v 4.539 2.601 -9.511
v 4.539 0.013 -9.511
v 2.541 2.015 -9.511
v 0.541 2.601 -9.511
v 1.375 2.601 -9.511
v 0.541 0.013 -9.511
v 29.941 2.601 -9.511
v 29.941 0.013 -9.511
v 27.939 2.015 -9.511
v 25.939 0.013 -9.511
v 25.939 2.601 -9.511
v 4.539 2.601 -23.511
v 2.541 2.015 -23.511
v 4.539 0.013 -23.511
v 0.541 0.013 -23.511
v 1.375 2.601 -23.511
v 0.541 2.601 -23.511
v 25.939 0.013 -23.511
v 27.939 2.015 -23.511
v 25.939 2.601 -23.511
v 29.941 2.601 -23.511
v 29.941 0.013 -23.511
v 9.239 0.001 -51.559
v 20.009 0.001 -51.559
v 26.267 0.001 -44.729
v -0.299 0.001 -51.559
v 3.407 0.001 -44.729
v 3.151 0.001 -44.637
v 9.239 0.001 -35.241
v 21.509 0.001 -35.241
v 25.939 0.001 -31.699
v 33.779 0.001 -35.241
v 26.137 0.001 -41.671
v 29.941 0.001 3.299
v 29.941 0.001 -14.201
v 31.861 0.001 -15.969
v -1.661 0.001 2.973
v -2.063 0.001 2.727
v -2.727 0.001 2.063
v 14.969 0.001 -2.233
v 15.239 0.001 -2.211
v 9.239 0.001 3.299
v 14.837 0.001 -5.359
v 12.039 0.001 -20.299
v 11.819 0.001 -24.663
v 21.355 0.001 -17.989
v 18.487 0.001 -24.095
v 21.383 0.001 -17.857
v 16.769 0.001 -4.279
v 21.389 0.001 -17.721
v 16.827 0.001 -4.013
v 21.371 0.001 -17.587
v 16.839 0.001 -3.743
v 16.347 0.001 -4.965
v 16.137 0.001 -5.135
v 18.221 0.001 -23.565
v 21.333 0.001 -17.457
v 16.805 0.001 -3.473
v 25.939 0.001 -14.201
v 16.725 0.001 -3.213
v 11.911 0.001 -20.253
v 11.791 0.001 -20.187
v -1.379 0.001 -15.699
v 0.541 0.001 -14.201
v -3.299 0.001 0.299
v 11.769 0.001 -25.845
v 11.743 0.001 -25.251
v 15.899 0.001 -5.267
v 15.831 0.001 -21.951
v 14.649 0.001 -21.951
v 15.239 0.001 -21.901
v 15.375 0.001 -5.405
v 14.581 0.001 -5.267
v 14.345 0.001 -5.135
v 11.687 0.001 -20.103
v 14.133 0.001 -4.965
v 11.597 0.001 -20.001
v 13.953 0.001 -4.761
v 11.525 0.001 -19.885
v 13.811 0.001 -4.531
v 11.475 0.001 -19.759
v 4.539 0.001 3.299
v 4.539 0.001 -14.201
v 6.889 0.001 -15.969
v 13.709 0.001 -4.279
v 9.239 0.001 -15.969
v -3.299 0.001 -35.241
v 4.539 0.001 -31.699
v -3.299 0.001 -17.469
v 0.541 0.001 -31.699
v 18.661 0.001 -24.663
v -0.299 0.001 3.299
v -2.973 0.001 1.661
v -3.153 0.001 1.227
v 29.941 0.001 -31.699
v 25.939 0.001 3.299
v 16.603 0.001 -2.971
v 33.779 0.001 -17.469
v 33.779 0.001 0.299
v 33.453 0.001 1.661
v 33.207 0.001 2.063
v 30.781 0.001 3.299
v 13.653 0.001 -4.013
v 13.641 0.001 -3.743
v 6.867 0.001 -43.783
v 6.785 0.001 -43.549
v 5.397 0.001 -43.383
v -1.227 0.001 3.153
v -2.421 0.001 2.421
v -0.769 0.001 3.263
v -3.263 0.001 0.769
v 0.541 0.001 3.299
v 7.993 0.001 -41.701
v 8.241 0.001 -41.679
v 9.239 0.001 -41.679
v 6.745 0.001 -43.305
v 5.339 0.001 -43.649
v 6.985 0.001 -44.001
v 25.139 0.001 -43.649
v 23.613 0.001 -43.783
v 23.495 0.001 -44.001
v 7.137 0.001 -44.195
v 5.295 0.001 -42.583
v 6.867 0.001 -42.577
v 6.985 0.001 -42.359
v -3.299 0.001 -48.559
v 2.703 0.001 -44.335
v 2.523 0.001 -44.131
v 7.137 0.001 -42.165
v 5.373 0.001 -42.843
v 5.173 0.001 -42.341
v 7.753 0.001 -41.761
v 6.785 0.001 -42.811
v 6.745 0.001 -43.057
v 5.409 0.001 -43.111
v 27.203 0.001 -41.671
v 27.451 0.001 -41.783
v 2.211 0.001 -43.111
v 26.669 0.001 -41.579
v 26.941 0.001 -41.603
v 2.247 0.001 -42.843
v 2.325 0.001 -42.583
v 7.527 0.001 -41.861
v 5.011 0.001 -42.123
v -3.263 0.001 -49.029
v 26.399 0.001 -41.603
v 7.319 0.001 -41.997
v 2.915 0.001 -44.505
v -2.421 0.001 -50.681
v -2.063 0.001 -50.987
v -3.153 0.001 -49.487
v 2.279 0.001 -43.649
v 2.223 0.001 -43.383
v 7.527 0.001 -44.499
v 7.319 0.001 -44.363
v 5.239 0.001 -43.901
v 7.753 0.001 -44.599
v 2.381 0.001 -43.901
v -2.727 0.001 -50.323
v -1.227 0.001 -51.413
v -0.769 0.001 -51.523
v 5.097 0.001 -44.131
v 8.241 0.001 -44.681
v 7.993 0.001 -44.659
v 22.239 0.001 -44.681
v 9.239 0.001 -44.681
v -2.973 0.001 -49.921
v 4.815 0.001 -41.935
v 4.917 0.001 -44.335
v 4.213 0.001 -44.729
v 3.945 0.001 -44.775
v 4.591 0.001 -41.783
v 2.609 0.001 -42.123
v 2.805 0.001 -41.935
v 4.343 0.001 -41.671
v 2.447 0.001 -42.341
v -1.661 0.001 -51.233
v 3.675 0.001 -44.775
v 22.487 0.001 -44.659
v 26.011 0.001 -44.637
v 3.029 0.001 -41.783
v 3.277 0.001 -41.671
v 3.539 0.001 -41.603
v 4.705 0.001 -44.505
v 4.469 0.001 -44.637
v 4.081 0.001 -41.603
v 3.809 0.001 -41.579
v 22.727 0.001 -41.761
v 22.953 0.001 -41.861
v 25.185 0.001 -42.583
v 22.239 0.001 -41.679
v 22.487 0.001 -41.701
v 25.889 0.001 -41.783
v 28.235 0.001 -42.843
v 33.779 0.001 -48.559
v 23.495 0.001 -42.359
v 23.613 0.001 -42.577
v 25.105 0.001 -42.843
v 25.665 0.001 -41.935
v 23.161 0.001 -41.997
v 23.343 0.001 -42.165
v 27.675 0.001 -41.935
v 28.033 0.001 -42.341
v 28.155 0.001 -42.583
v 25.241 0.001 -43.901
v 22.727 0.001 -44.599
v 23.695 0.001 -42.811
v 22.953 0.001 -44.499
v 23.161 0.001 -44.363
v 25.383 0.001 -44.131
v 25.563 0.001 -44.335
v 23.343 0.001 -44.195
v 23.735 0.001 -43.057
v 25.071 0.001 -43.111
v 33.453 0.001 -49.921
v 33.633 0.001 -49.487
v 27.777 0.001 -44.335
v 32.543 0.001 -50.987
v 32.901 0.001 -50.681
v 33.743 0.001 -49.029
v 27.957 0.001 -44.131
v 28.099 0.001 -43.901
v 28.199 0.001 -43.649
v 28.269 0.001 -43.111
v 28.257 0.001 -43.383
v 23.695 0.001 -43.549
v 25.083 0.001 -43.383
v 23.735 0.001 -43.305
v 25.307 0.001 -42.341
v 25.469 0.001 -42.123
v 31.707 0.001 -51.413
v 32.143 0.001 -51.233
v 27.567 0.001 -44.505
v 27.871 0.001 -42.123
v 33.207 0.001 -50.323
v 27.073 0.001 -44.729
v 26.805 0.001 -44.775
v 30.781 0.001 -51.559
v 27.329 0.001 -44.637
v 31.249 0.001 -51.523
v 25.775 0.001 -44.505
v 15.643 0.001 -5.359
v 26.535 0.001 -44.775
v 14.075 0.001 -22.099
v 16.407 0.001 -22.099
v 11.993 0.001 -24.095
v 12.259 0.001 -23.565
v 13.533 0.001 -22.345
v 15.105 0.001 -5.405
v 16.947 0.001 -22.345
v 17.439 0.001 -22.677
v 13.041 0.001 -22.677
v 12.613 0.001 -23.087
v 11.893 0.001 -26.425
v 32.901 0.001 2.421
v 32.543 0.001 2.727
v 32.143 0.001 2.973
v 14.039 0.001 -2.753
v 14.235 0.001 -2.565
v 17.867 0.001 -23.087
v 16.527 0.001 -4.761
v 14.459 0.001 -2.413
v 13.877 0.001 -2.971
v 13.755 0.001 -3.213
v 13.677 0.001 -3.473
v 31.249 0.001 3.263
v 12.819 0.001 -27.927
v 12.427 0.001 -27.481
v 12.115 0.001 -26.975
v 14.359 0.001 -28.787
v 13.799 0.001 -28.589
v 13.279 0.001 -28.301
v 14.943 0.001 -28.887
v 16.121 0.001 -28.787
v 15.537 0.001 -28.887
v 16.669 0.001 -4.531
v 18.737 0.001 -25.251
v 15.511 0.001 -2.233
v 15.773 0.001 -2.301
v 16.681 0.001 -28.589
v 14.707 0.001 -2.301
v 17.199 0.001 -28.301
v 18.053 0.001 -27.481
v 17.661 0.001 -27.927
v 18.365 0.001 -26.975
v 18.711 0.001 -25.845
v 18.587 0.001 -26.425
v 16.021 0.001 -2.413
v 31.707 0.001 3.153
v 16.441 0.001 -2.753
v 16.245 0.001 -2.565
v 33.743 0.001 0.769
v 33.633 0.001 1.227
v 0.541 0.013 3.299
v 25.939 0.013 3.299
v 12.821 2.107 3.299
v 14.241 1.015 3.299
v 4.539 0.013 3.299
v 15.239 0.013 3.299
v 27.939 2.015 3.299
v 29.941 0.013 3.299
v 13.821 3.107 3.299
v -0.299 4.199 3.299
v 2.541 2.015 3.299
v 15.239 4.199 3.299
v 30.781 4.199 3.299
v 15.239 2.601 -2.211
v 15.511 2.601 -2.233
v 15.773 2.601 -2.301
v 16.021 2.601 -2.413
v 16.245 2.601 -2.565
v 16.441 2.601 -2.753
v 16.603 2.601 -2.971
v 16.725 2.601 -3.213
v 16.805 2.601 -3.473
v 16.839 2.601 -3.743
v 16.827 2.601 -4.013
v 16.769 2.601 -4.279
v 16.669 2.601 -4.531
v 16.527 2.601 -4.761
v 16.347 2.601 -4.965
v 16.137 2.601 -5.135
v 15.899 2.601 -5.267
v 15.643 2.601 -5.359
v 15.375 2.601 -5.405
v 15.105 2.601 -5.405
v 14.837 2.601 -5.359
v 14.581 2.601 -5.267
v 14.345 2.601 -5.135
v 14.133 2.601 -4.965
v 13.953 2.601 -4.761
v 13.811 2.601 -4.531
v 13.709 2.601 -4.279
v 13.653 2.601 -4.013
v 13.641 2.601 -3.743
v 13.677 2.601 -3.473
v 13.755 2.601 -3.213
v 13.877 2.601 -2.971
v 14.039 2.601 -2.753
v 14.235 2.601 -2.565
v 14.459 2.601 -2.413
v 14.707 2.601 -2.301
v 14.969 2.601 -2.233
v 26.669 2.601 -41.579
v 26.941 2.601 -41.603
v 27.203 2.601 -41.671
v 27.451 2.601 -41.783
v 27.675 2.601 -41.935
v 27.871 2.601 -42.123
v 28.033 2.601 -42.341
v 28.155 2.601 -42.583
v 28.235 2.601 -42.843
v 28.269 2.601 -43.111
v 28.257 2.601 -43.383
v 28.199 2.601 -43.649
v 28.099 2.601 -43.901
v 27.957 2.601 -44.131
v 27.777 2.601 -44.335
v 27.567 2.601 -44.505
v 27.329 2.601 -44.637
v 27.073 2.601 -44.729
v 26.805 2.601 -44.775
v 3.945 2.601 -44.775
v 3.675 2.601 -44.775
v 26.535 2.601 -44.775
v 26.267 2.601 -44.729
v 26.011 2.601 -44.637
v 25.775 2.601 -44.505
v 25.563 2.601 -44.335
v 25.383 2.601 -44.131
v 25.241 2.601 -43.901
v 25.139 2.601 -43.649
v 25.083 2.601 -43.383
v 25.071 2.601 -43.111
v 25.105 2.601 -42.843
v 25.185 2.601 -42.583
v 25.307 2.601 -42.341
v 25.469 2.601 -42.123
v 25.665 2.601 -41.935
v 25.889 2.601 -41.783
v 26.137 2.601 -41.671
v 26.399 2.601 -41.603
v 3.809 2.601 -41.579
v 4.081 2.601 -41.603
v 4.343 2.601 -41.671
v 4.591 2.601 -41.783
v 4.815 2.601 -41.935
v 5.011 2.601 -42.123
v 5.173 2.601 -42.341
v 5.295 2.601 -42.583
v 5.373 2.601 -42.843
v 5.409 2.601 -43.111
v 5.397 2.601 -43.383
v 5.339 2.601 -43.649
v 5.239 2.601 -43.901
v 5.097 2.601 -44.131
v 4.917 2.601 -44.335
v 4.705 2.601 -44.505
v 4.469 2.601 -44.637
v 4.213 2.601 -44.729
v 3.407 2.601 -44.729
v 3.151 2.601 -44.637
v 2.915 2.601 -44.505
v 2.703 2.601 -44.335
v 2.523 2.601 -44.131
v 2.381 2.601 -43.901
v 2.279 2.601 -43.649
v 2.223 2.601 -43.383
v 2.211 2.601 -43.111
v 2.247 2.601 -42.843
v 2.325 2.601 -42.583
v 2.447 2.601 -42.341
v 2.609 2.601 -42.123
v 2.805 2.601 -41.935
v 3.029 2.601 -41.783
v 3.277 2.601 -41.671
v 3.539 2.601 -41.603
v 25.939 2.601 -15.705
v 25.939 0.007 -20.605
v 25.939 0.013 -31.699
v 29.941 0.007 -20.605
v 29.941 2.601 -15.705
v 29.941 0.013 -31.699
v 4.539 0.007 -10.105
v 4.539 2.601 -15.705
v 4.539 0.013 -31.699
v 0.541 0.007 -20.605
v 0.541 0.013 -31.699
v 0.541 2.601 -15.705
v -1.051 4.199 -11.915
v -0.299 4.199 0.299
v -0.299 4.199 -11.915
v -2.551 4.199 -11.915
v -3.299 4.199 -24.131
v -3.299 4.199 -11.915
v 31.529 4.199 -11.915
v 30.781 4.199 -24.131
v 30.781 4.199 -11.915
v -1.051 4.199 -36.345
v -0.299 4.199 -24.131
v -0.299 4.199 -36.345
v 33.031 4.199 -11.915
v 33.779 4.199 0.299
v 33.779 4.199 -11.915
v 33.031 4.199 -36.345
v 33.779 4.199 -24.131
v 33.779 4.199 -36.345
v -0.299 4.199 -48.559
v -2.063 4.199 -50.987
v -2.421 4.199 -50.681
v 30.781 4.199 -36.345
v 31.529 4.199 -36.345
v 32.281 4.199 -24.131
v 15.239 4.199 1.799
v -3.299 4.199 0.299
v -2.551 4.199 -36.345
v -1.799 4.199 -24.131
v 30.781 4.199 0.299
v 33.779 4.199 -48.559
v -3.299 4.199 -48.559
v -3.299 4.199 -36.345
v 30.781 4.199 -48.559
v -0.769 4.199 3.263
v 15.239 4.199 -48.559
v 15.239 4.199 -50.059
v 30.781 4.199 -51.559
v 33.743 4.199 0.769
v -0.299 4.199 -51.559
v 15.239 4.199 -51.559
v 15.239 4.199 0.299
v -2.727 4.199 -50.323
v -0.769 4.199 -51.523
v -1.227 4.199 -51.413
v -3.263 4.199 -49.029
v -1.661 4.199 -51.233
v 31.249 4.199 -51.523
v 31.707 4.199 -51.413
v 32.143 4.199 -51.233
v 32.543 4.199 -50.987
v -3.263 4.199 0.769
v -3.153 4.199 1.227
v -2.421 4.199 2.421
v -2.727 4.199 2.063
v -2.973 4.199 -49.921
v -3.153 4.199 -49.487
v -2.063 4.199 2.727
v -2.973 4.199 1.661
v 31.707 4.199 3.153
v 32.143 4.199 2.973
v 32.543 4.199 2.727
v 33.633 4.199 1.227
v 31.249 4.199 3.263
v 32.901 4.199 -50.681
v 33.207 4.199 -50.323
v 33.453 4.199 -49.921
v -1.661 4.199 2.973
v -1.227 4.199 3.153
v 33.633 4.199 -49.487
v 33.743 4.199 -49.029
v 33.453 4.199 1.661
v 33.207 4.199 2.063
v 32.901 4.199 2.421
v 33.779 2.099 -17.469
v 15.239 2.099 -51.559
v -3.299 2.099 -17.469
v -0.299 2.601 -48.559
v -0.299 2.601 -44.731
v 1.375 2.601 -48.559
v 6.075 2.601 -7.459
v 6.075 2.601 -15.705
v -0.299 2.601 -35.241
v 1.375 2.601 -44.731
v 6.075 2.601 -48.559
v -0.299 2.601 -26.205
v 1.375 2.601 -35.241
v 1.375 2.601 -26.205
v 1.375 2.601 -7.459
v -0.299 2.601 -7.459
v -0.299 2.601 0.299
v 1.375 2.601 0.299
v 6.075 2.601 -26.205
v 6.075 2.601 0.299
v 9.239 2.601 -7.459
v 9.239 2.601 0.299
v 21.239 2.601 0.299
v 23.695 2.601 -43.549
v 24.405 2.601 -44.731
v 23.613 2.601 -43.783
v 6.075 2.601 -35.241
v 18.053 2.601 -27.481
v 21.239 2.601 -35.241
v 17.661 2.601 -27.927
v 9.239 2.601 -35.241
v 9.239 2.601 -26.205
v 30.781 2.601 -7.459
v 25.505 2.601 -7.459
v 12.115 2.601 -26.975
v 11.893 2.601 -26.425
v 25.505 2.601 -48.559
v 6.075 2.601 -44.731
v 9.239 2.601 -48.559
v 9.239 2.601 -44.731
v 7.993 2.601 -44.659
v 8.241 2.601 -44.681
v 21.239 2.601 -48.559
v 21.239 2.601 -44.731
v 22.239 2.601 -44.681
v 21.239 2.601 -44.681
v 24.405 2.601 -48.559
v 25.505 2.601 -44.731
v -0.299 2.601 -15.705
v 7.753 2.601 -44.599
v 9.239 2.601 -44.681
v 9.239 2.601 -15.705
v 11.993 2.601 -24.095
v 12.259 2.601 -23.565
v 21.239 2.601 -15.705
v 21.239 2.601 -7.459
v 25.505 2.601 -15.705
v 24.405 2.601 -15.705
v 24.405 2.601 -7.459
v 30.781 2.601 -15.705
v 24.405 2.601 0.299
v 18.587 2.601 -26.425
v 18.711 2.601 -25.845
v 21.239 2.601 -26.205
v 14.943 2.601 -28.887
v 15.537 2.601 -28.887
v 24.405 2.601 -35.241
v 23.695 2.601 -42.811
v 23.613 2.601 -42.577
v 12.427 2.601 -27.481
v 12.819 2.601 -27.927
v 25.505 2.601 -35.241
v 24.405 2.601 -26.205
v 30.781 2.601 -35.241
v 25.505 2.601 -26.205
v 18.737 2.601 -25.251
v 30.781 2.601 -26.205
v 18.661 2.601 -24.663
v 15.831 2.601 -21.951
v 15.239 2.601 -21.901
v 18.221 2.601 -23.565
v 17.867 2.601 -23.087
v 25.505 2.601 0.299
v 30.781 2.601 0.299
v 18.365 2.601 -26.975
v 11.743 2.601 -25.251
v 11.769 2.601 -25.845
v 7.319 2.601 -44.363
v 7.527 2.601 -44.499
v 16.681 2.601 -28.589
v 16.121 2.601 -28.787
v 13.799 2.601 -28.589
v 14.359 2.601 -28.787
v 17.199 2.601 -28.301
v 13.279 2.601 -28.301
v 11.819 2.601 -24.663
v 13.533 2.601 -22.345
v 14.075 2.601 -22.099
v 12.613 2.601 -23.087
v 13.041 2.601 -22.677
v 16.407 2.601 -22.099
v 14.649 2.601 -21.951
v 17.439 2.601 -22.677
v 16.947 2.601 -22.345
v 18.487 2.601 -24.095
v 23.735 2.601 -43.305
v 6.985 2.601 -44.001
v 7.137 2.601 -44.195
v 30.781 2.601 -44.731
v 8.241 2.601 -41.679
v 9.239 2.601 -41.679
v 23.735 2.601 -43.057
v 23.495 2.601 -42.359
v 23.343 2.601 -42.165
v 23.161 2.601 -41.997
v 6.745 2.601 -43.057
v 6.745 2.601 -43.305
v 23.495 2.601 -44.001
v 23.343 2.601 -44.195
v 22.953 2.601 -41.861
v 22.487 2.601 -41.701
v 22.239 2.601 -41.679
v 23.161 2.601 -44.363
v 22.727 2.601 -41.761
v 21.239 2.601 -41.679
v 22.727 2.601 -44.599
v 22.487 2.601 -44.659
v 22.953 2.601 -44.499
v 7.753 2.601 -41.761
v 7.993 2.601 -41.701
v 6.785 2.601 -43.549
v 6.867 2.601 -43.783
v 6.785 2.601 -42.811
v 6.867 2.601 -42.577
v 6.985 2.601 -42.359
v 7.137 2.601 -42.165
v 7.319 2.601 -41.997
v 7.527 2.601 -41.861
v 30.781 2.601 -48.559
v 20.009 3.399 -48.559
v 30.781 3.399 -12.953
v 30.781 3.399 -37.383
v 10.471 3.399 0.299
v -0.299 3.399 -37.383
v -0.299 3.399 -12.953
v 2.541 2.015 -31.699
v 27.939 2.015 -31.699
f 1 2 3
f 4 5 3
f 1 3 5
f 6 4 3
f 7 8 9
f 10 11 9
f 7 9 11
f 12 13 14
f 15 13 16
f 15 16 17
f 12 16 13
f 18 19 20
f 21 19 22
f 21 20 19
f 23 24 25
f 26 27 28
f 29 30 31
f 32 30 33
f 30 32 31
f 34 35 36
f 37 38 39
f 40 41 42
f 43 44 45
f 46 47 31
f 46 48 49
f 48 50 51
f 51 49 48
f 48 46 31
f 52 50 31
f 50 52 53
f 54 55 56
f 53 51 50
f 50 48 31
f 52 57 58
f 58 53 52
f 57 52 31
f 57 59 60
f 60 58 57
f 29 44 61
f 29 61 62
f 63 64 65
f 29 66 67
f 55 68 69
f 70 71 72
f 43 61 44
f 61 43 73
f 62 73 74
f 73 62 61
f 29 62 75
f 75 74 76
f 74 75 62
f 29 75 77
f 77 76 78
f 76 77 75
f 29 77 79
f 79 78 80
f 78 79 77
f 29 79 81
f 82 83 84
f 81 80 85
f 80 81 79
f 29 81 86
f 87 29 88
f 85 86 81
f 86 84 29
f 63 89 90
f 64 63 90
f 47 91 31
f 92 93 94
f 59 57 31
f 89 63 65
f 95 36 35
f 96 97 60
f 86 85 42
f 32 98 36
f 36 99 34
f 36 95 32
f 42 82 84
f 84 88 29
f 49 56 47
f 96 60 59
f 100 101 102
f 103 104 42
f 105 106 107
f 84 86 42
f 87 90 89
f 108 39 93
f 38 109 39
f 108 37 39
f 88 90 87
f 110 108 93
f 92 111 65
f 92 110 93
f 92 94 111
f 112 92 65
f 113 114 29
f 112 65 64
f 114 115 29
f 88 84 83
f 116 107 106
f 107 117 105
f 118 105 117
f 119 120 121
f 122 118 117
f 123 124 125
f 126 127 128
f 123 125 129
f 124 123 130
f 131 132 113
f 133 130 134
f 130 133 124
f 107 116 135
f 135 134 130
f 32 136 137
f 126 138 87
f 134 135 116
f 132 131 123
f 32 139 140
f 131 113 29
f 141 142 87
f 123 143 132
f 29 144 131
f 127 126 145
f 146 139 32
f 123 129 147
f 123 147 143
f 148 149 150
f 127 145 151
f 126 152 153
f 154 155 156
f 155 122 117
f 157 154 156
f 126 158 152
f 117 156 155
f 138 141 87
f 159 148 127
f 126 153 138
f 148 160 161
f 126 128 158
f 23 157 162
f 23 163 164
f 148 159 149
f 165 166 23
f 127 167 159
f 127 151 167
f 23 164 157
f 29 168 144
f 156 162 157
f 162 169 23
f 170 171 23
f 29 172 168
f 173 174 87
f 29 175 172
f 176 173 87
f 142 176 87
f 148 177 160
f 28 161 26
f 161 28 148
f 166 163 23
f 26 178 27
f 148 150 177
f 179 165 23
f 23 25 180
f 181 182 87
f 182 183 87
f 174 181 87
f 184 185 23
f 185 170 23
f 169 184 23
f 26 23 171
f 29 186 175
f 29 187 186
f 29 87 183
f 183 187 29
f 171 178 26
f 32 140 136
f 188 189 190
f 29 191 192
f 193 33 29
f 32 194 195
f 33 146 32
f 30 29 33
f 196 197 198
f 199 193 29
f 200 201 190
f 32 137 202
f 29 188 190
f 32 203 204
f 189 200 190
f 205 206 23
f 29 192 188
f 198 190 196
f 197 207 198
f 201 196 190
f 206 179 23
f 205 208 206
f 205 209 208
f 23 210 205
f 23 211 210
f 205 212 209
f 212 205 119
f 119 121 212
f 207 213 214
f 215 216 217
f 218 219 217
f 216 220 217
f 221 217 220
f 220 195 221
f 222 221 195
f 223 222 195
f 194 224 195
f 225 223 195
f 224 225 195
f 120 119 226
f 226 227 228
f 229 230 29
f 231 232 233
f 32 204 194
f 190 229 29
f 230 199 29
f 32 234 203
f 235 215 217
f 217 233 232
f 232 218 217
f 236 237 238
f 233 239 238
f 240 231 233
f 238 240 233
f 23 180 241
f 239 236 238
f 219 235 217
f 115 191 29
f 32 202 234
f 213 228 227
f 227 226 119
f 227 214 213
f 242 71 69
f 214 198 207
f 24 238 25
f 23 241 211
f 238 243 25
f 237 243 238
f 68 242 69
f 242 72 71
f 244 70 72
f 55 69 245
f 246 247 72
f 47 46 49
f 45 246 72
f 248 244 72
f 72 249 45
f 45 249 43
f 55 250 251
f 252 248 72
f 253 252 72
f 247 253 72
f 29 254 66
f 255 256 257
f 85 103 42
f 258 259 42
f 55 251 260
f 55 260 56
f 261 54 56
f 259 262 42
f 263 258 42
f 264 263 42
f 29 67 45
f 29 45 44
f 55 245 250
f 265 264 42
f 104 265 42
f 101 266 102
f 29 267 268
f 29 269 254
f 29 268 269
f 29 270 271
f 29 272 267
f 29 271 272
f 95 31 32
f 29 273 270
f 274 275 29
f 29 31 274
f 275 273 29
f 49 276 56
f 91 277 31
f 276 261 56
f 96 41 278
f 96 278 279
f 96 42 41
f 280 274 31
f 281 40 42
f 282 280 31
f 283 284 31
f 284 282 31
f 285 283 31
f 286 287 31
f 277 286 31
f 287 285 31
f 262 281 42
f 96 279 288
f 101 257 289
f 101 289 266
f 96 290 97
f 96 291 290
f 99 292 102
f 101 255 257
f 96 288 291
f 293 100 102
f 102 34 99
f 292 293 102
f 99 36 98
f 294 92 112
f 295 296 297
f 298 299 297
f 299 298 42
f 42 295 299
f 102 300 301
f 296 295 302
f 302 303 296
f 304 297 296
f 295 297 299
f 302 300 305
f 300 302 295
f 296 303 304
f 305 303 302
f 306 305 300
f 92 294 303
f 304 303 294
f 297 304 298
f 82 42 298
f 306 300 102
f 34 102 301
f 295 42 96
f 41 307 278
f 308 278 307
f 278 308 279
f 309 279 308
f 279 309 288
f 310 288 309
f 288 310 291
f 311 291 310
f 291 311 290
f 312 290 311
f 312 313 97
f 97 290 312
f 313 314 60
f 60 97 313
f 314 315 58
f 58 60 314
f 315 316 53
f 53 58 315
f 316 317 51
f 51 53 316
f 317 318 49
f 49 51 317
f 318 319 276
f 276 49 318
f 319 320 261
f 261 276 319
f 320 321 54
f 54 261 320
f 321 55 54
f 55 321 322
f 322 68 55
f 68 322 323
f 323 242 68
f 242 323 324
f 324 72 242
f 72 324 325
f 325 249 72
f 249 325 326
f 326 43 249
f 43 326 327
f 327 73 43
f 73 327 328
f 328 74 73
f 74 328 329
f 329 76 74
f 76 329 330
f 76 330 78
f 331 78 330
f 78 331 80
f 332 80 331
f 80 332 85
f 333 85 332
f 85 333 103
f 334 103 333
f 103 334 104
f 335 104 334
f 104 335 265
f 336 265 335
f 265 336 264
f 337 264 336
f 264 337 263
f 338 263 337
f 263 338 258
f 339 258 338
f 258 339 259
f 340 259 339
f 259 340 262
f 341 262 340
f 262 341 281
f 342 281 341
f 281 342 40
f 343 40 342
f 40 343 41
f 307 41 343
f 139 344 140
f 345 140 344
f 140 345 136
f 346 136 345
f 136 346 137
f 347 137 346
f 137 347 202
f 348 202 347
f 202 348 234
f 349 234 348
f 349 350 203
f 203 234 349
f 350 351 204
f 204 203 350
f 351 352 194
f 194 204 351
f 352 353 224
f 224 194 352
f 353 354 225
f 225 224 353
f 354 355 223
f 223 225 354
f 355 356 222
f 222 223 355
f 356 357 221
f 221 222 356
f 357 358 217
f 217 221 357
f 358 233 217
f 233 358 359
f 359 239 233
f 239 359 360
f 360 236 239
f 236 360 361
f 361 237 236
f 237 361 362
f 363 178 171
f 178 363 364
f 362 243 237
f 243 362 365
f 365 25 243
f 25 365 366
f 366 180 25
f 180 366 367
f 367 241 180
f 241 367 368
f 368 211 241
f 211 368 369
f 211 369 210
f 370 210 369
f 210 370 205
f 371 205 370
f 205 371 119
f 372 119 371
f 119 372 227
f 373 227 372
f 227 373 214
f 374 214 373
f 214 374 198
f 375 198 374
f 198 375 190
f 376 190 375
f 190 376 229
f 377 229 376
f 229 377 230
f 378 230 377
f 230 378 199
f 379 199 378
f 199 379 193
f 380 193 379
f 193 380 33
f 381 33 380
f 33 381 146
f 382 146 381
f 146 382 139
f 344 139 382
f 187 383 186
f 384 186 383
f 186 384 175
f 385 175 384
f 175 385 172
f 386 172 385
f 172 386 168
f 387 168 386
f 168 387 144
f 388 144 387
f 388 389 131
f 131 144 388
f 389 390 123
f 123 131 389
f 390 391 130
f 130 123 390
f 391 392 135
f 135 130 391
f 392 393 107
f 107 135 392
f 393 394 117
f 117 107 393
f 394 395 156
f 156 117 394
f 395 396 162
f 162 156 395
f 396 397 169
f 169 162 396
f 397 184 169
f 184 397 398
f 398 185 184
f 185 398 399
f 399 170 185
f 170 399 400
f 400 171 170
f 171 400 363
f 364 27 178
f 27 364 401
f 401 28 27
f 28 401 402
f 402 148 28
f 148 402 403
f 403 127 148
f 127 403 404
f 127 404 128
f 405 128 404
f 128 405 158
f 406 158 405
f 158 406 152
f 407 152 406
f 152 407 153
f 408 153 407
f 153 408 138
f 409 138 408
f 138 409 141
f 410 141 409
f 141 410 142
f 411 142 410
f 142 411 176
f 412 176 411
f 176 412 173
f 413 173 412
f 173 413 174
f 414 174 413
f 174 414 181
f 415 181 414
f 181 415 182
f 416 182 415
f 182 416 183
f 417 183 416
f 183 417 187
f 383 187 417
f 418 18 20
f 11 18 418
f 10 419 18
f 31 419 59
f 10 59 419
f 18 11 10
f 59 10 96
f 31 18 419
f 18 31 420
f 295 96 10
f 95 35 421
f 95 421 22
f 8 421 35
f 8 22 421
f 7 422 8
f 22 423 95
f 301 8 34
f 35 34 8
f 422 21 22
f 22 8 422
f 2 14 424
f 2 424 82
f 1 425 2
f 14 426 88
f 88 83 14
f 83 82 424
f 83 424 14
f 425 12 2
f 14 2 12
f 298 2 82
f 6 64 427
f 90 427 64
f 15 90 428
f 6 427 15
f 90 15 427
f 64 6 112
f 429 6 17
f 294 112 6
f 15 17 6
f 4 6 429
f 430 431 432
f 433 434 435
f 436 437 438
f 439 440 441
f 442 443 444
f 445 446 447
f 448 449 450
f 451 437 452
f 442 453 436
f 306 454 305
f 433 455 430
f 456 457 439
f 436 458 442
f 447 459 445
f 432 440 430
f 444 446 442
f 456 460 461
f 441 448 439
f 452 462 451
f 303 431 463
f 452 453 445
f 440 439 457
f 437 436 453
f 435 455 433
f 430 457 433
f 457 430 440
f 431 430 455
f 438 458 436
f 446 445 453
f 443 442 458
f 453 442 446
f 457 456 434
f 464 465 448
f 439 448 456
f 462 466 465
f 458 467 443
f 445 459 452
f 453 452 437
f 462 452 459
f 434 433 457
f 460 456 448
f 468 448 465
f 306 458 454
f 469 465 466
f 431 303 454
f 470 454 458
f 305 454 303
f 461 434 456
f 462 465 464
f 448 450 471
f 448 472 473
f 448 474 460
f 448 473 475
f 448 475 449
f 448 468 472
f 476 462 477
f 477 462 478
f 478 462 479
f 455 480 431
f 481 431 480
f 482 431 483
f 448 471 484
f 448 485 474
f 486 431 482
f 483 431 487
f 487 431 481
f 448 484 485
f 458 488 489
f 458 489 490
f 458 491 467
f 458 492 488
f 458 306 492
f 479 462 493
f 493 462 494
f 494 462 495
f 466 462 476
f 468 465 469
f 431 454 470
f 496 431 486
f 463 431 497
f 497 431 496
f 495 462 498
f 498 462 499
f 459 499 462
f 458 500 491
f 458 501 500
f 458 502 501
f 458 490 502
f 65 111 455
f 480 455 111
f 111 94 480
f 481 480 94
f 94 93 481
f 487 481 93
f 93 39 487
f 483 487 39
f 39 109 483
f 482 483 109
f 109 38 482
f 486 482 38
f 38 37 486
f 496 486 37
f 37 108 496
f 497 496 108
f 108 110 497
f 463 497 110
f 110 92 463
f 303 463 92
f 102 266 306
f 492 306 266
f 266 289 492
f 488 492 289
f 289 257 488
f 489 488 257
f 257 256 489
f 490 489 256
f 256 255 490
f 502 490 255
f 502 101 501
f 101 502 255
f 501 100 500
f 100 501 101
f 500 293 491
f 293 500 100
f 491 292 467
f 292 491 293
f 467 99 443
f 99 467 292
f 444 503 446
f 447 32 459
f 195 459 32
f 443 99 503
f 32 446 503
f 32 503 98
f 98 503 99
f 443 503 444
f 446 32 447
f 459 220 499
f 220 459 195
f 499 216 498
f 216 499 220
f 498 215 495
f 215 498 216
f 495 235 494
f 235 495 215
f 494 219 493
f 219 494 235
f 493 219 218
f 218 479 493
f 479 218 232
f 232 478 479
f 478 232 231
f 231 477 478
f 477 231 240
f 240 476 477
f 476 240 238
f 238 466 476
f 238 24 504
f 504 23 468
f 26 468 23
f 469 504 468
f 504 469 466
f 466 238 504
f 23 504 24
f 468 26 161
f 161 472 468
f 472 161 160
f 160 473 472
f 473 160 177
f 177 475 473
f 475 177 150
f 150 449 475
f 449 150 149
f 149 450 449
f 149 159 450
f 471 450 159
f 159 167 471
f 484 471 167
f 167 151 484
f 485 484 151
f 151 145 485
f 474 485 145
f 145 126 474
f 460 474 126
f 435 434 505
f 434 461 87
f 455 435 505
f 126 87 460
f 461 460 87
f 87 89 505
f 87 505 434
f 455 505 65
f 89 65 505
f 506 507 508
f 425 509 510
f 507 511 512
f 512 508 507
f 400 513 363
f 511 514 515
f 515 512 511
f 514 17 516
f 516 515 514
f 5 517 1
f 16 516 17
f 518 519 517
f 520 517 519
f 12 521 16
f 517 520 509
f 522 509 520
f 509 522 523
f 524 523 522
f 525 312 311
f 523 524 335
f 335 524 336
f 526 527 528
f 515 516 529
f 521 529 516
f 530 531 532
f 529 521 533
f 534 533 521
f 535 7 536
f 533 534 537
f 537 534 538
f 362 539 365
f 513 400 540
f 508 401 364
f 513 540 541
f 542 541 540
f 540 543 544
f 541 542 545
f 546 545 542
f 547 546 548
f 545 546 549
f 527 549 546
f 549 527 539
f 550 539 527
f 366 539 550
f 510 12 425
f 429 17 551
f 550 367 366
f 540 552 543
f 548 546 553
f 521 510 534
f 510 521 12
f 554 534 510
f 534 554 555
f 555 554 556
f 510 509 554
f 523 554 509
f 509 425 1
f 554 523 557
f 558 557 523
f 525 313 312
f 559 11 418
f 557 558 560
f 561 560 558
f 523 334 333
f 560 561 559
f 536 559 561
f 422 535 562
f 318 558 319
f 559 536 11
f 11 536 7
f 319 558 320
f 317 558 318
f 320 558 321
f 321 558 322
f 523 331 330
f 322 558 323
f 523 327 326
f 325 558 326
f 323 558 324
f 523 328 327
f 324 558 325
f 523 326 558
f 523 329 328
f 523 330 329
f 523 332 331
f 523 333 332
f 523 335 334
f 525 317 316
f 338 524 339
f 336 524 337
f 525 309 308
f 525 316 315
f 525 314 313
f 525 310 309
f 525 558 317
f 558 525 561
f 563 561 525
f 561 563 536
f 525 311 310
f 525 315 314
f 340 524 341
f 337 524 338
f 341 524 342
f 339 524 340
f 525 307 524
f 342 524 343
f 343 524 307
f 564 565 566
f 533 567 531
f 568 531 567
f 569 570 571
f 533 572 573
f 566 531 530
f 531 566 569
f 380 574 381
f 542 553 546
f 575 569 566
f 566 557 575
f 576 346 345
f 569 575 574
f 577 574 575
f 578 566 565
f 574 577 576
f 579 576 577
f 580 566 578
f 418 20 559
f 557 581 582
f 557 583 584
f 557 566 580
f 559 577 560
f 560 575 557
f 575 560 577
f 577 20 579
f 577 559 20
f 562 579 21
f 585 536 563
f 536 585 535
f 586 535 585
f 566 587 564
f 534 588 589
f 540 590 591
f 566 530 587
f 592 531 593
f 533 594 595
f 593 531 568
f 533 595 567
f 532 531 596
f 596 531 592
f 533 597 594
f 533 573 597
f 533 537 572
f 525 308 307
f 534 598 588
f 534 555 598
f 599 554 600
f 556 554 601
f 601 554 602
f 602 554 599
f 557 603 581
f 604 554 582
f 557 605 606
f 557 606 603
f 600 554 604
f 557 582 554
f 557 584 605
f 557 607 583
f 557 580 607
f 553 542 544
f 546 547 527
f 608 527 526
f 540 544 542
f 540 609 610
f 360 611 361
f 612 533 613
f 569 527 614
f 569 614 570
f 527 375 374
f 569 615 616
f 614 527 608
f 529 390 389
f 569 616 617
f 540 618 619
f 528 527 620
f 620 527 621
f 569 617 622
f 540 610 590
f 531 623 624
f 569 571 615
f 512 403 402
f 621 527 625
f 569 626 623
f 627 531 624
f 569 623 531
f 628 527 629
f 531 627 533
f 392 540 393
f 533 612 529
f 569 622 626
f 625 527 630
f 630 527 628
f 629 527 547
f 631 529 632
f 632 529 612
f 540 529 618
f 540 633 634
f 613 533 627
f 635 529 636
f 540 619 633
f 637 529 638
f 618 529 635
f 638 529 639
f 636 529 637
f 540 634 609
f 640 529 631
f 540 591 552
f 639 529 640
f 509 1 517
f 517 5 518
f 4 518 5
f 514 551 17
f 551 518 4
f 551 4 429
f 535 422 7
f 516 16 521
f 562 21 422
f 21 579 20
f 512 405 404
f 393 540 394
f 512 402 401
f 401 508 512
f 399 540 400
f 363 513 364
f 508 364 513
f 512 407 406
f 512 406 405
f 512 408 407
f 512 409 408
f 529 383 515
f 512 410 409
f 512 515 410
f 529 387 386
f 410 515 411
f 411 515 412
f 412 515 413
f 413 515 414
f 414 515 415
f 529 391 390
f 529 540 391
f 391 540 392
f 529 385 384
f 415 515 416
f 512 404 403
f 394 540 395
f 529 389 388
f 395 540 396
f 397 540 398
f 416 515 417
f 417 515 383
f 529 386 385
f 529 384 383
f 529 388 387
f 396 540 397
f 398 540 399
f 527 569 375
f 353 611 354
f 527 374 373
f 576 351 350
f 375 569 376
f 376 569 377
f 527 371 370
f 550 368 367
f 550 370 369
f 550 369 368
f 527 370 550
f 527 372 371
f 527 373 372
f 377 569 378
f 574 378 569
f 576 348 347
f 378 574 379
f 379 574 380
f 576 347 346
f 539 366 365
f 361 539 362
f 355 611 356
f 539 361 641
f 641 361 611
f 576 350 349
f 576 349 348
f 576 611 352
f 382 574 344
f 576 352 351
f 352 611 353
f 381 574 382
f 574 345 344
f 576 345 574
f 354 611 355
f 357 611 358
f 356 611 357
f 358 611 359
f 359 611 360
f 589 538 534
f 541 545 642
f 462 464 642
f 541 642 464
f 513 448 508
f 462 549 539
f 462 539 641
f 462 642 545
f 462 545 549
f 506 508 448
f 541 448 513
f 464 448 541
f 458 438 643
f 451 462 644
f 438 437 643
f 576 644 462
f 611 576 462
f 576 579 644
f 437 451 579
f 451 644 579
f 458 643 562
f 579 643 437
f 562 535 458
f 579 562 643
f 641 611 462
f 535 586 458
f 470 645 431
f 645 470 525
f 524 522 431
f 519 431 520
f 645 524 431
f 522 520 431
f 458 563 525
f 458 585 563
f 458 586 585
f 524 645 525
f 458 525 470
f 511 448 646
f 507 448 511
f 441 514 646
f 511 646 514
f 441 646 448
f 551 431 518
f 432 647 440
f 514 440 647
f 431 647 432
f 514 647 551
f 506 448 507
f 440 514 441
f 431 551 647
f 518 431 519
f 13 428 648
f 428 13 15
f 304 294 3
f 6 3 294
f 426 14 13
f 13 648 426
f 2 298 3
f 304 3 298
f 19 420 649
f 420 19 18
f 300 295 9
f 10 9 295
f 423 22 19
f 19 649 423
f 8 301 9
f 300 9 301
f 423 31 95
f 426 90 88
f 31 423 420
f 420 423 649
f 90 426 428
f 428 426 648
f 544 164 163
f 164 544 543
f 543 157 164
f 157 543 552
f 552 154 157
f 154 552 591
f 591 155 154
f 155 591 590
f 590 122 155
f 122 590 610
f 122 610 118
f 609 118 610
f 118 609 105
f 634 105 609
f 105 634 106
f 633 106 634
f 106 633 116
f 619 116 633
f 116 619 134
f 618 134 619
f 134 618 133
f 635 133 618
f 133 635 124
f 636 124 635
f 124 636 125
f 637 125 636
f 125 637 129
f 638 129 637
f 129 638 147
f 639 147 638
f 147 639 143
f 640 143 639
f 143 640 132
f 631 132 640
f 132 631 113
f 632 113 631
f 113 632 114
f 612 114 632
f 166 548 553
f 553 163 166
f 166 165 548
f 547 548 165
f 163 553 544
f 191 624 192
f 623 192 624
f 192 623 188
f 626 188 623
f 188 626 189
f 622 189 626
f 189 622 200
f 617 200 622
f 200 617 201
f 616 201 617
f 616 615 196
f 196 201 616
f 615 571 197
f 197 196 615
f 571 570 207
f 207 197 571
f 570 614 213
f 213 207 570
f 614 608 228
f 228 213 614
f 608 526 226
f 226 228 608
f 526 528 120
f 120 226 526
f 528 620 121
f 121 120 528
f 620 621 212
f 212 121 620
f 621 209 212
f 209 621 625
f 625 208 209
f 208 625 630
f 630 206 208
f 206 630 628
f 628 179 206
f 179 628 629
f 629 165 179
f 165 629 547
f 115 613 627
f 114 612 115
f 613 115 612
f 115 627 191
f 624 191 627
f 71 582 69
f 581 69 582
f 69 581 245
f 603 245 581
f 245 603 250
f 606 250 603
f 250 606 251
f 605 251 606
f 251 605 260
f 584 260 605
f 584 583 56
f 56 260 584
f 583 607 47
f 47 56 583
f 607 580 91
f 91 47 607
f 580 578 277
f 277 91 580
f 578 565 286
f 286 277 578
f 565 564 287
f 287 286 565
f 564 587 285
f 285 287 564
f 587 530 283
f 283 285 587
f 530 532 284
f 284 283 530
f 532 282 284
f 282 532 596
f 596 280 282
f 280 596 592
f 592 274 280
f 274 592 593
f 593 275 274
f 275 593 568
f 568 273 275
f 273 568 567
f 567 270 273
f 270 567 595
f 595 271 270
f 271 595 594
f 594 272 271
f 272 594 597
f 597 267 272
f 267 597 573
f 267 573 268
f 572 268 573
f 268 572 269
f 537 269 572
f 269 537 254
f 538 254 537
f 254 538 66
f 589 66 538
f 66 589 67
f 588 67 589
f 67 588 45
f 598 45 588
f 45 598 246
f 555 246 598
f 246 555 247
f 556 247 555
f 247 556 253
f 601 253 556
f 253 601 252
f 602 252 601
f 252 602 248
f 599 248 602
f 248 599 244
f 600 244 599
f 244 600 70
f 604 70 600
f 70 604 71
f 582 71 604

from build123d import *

# Parameters (mm, degrees)
BOSS_EXTRUDE1_DEPTH     = 4.2
CUT_EXTRUDE4_DEPTH      = 62.783185415
CUT_EXTRUDE4_DEPTH_BACK = 62.783185415
SKETCH2_R               = 1.6
SKETCH3_W               = 4
SKETCH3_H               = 14
CUT_EXTRUDE5_DEPTH      = 62.783185415
SKETCH6_W               = 31.08
SKETCH6_H               = 48.86
CUT_EXTRUDE6_DEPTH      = 1.6
CUT_EXTRUDE7_DEPTH      = 65.562744675
CUT_EXTRUDE7_DEPTH_BACK = 35
CUT_EXTRUDE8_DEPTH      = 62.695072737
CUT_EXTRUDE8_DEPTH_BACK = 62.695072737
SKETCH9_R               = 3.5


with BuildPart() as part:
    # Sketch1 → Boss-Extrude1 (new body)
    with BuildSketch(Plane(origin=(0, 0, 0), x_dir=(1, 0, 0), z_dir=(0, 1, 0))):
        with BuildLine():
            Line((-3.3, -0.3), (-3.3, 48.56))
            ThreePointArc((-3.3, 48.56), (-2.421320344, 50.681320344), (-0.3, 51.56))
            Line((-0.3, 51.56), (30.78, 51.56))
            ThreePointArc((30.78, 51.56), (32.901320344, 50.681320344), (33.78, 48.56))
            Line((33.78, 48.56), (33.78, -0.3))
            ThreePointArc((33.78, -0.3), (32.901320344, -2.421320344), (30.78, -3.3))
            Line((30.78, -3.3), (-0.3, -3.3))
            ThreePointArc((-0.3, -3.3), (-2.421320344, -2.421320344), (-3.3, -0.3))
        make_face()
    extrude(amount=BOSS_EXTRUDE1_DEPTH)

    # Sketch2 → Cut-Extrude4 (cut, two sides: drawn at the far end of the back side and taken through both)
    with BuildSketch(Plane(origin=(0, 0, 0), x_dir=(1, 0, 0), z_dir=(0, 1, 0)).offset(-CUT_EXTRUDE4_DEPTH_BACK)):
        with Locations(Location((3.81, 43.18, 0), (0, 0, 270))):
            Circle(SKETCH2_R)
        with Locations(Location((26.67, 43.18, 0), (0, 0, 270))):
            Circle(SKETCH2_R)
        with Locations(Location((15.24, 3.81, 0), (0, 0, 270))):
            Circle(SKETCH2_R)
    extrude(amount=CUT_EXTRUDE4_DEPTH + CUT_EXTRUDE4_DEPTH_BACK, mode=Mode.SUBTRACT)

    # Sketch3 → Cut-Extrude5 (cut, through all)
    with BuildSketch(Plane(origin=(0, 0, 0), x_dir=(1, 0, 0), z_dir=(0, 1, 0))):
        with Locations((2.54, 16.51)):
            Rectangle(SKETCH3_W, SKETCH3_H)
        with Locations((27.94, 16.51)):
            Rectangle(SKETCH3_W, SKETCH3_H)
    extrude(amount=CUT_EXTRUDE5_DEPTH, mode=Mode.SUBTRACT)

    # Sketch6 → Cut-Extrude6 (cut)
    with BuildSketch(Plane(origin=(0, 4.2, 0), x_dir=(1, 0, 0), z_dir=(0, 1, 0))):
        with Locations((15.24, 24.13)):
            Rectangle(SKETCH6_W, SKETCH6_H)
    extrude(amount=-CUT_EXTRUDE6_DEPTH, mode=Mode.SUBTRACT)

    # Sketch8 → Cut-Extrude7 (cut, two sides: drawn at the far end of the back side and taken through both)
    with BuildSketch(Plane.XY.offset(3.3).offset(-CUT_EXTRUDE7_DEPTH_BACK)):
        with BuildLine():
            ThreePointArc((1.74, 0), (1.542515791, 0.67088902), (1.832893219, 1.307106781))
            Line((1.832893219, 1.307106781), (0.54, 0.014213562))
            Line((0.54, 0.014213562), (0.54, 0))
            Line((0.54, 0), (1.74, 0))
        make_face()
        with BuildLine():
            ThreePointArc((1.832893219, 1.307106781), (2.54, 1.6), (3.247106781, 1.307106781))
            Line((3.247106781, 1.307106781), (2.54, 2.014213562))
            Line((2.54, 2.014213562), (1.832893219, 1.307106781))
        make_face()
        with BuildLine():
            ThreePointArc((3.54, 0.6), (3.463879533, 0.982683432), (3.247106781, 1.307106781))
            ThreePointArc((3.247106781, 1.307106781), (2.54, 1.6), (1.832893219, 1.307106781))
            ThreePointArc((1.832893219, 1.307106781), (1.542515791, 0.67088902), (1.74, 0))
            Line((1.74, 0), (3.34, 0))
            ThreePointArc((3.34, 0), (3.488683298, 0.283772234), (3.54, 0.6))
        make_face()
        with BuildLine():
            ThreePointArc((1.74, 0), (2.54, -0.4), (3.34, 0))
            Line((3.34, 0), (1.74, 0))
        make_face()
        with BuildLine():
            Line((4.54, 0), (4.54, 0.014213562))
            Line((4.54, 0.014213562), (3.247106781, 1.307106781))
            ThreePointArc((3.247106781, 1.307106781), (3.463879533, 0.982683432), (3.54, 0.6))
            ThreePointArc((3.54, 0.6), (3.488683298, 0.283772234), (3.34, 0))
            Line((3.34, 0), (4.54, 0))
        make_face()
        with BuildLine():
            Line((29.94, 0.014213562), (28.647106781, 1.307106781))
            ThreePointArc((28.647106781, 1.307106781), (28.863879533, 0.982683432), (28.94, 0.6))
            ThreePointArc((28.94, 0.6), (28.888683298, 0.283772234), (28.74, 0))
            Line((28.74, 0), (29.94, 0))
            Line((29.94, 0), (29.94, 0.014213562))
        make_face()
        with BuildLine():
            Line((28.647106781, 1.307106781), (27.94, 2.014213562))
            Line((27.94, 2.014213562), (27.23289323, 1.307106792))
            ThreePointArc((27.23289323, 1.307106792), (27.940000008, 1.6), (28.647106781, 1.307106781))
        make_face()
        with BuildLine():
            ThreePointArc((28.94, 0.6), (28.863879533, 0.982683432), (28.647106781, 1.307106781))
            ThreePointArc((28.647106781, 1.307106781), (27.940000008, 1.6), (27.23289323, 1.307106792))
            ThreePointArc((27.23289323, 1.307106792), (26.942515792, 0.670889028), (27.14, 0))
            Line((27.14, 0), (28.74, 0))
            ThreePointArc((28.74, 0), (28.888683298, 0.283772234), (28.94, 0.6))
        make_face()
        with BuildLine():
            Line((28.74, 0), (27.14, 0))
            ThreePointArc((27.14, 0), (27.94, -0.4), (28.74, 0))
        make_face()
        with BuildLine():
            ThreePointArc((27.14, 0), (26.942515792, 0.670889028), (27.23289323, 1.307106792))
            Line((27.23289323, 1.307106792), (25.94, 0.014213562))
            Line((25.94, 0.014213562), (25.94, 0))
            Line((25.94, 0), (27.14, 0))
        make_face()
    extrude(amount=CUT_EXTRUDE7_DEPTH + CUT_EXTRUDE7_DEPTH_BACK, mode=Mode.SUBTRACT)

    # Sketch9 → Cut-Extrude8 (cut, two sides: drawn at the far end of the back side and taken through both)
    with BuildSketch(Plane(origin=(0, 2.6, 0), x_dir=(1, 0, 0), z_dir=(0, 1, 0)).offset(-CUT_EXTRUDE8_DEPTH_BACK)):
        with Locations(Location((15.24, 25.4, 0), (0, 0, 270))):
            Circle(SKETCH9_R)
        with BuildLine():
            Line((8.24, 44.68), (22.24, 44.68))
            ThreePointArc((22.24, 44.68), (23.74, 43.18), (22.24, 41.68))
            Line((22.24, 41.68), (8.24, 41.68))
            ThreePointArc((8.24, 41.68), (6.74, 43.18), (8.24, 44.68))
        make_face()
    extrude(amount=CUT_EXTRUDE8_DEPTH + CUT_EXTRUDE8_DEPTH_BACK, mode=Mode.SUBTRACT)


solid = part.part
